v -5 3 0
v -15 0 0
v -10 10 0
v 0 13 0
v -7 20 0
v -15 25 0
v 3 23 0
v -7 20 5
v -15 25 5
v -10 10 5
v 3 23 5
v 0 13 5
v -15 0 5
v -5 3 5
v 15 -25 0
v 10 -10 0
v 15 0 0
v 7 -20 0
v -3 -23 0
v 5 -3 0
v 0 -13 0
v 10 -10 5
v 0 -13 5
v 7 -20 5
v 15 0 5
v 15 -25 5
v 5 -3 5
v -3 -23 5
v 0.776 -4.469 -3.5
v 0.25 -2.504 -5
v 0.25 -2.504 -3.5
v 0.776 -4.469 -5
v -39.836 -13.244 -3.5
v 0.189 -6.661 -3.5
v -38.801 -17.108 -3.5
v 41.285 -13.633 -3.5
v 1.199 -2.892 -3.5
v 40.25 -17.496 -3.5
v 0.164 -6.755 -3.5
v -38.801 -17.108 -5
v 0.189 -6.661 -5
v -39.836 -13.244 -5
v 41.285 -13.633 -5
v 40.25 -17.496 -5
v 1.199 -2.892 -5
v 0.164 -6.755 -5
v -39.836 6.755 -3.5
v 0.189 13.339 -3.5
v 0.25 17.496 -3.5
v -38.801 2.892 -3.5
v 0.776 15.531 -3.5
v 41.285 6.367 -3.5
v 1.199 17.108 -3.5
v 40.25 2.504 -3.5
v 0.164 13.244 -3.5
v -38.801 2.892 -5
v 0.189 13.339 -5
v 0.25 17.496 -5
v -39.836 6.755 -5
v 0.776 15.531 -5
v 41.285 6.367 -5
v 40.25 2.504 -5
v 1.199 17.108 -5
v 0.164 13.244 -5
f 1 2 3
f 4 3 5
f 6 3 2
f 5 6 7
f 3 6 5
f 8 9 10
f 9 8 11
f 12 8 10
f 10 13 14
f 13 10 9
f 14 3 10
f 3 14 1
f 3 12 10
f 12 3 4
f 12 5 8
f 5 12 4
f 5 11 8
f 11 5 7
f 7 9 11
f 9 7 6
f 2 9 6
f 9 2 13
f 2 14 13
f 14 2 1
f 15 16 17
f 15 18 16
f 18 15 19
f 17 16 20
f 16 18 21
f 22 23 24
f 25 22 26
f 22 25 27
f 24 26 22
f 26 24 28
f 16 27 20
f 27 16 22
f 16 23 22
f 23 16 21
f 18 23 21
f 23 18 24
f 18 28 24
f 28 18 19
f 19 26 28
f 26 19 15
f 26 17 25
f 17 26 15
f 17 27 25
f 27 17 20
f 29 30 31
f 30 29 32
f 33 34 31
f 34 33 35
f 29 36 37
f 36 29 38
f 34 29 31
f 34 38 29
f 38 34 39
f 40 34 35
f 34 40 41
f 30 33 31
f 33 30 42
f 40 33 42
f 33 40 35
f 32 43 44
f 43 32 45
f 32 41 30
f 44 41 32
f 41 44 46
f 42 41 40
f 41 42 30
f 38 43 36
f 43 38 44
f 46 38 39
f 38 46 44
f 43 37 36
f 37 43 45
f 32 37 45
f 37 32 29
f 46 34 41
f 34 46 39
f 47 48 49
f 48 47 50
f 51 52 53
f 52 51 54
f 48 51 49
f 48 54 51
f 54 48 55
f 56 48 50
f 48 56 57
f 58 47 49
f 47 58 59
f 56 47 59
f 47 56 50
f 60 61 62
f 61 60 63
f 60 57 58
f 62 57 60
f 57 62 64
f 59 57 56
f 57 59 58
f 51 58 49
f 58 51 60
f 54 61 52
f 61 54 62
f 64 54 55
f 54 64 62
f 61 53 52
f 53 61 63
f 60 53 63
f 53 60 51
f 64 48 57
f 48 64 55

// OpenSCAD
// Lightning-shaped blade module
module lightning_shaped_blade() {
    linear_extrude(height = 5)  // Extrude the 2D profile to create a 3D shape
    polygon(points = [
        [0, 0], [10, 3], [5, 10], [15, 13], [8, 20], [18, 23], [0, 25]
    ]);
}

// Flat elongated piece module
module flat_elongated_piece(length = 40, width = 4, thickness = 1.5) {
    // Adjusting the edges to make them smoother
    hull() {
        translate([-length / 2, -width / 2, 0]) cube([1.5, width, thickness]);
        translate([length / 2, -width / 2, 0]) cube([1.5, width, thickness]);
    }
}

// Layer 1: Lightning-shaped blades
module layer_1() {
    translate([-15, 0, 0]) rotate([0, 0, 0]) lightning_shaped_blade();
    translate([15, 0, 0]) rotate([0, 0, 180]) lightning_shaped_blade();
}

// Layer 2: Flat elongated pieces
module layer_2() {
    // Adjusting the angle and position of the flat elongated pieces
    translate([-20, -10, -5]) rotate([0, 0, 15]) flat_elongated_piece();
    translate([20, -10, -5]) rotate([0, 0, -15]) flat_elongated_piece();
    translate([-20, 10, -5]) rotate([0, 0, 15]) flat_elongated_piece();
    translate([20, 10, -5]) rotate([0, 0, -15]) flat_elongated_piece();
}

// Combine all layers to form the final model
module flexible_coupling() {
    layer_1();
    layer_2();
}

// Render the model
flexible_coupling();
